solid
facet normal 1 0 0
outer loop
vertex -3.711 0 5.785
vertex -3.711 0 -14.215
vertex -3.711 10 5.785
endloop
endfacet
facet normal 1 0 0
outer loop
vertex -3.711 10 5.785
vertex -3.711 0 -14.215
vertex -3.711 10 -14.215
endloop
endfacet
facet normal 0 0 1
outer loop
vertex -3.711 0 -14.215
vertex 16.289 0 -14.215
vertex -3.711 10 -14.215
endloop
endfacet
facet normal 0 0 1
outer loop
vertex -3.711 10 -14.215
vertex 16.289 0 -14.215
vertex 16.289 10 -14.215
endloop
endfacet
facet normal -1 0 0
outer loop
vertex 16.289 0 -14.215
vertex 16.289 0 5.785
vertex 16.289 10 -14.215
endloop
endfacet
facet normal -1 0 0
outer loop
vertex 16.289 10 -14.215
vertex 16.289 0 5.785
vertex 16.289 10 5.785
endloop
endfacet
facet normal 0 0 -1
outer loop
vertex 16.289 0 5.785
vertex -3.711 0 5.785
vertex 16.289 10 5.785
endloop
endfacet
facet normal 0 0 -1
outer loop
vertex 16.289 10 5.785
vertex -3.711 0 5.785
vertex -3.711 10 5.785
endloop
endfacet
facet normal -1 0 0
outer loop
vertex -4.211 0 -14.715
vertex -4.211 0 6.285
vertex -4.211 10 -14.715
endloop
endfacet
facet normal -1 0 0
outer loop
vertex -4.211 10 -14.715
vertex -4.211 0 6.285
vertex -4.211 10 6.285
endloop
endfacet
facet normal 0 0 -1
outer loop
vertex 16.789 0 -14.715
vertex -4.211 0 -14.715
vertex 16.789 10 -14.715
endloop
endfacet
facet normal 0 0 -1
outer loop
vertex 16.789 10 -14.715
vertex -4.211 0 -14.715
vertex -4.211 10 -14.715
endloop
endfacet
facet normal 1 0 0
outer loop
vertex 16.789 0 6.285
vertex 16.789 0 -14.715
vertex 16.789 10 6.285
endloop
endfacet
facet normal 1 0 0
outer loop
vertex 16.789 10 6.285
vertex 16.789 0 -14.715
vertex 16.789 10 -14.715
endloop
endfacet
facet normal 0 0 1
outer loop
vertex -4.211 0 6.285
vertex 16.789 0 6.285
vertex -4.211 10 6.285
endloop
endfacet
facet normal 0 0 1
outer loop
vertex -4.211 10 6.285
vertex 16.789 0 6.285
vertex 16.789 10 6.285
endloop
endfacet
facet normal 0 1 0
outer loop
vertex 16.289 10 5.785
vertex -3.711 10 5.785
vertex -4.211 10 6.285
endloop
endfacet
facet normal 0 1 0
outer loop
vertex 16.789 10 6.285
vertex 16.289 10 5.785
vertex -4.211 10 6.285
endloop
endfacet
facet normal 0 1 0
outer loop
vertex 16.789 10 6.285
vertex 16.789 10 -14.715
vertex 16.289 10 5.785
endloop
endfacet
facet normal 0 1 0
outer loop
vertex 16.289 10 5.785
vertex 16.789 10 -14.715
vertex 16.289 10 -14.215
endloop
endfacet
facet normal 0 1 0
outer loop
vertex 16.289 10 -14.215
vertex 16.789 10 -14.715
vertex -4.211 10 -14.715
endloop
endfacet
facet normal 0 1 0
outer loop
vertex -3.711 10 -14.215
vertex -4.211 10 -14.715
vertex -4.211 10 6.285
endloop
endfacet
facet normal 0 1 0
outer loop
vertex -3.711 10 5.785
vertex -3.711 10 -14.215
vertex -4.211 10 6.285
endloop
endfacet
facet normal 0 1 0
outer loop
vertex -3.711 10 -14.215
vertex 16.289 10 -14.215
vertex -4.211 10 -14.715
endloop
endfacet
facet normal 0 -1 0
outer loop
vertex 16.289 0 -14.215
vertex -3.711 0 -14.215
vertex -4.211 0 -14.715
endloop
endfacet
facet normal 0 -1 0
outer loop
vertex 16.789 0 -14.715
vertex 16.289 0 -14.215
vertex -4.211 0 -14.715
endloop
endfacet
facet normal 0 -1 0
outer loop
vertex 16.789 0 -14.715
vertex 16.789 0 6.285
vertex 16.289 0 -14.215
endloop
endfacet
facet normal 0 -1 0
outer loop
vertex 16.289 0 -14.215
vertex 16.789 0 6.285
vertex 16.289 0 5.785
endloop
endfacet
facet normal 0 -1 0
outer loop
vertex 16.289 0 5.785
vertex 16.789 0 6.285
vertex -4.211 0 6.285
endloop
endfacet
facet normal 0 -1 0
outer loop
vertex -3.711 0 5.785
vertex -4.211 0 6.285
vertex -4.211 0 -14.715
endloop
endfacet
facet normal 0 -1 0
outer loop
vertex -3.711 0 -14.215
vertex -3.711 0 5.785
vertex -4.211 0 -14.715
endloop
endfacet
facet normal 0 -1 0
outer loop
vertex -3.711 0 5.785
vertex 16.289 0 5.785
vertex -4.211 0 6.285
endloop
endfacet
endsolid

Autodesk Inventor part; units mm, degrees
ref_plane "YZ Plane" through (0, 0, 0) normal (1, 0, 0) x (0, 1, 0)
ref_plane "XZ Plane" through (0, 0, 0) normal (0, 1, 0) x (-1, 0, 0)
ref_plane "XY Plane" through (0, 0, 0) normal (0, 0, 1) x (1, 0, 0)
sketch "Sketch1" plane through (0, 0, 0) normal (0, 1, 0) x (-1, 0, 0)
  line L0 (3.7114, 5.7847) -> (-16.2886, 5.7847)
  line L1 (-16.2886, 5.7847) -> (-16.2886, -14.2153)
  line L2 (-16.2886, -14.2153) -> (3.7114, -14.2153)
  line L3 (3.7114, -14.2153) -> (3.7114, 5.7847)
  line L4 (4.2114, 6.2847) -> (-16.7886, 6.2847)
  line L5 (-16.7886, 6.2847) -> (-16.7886, -14.7153)
  line L6 (-16.7886, -14.7153) -> (4.2114, -14.7153)
  line L7 (4.2114, -14.7153) -> (4.2114, 6.2847)
  point P0 (0, 0)
  dimension "d0" = 20
  dimension "d1" = 20
  dimension "d2" = 0.5
extrude "Extrusion2" add sketch "Sketch1" along normal blind 10
